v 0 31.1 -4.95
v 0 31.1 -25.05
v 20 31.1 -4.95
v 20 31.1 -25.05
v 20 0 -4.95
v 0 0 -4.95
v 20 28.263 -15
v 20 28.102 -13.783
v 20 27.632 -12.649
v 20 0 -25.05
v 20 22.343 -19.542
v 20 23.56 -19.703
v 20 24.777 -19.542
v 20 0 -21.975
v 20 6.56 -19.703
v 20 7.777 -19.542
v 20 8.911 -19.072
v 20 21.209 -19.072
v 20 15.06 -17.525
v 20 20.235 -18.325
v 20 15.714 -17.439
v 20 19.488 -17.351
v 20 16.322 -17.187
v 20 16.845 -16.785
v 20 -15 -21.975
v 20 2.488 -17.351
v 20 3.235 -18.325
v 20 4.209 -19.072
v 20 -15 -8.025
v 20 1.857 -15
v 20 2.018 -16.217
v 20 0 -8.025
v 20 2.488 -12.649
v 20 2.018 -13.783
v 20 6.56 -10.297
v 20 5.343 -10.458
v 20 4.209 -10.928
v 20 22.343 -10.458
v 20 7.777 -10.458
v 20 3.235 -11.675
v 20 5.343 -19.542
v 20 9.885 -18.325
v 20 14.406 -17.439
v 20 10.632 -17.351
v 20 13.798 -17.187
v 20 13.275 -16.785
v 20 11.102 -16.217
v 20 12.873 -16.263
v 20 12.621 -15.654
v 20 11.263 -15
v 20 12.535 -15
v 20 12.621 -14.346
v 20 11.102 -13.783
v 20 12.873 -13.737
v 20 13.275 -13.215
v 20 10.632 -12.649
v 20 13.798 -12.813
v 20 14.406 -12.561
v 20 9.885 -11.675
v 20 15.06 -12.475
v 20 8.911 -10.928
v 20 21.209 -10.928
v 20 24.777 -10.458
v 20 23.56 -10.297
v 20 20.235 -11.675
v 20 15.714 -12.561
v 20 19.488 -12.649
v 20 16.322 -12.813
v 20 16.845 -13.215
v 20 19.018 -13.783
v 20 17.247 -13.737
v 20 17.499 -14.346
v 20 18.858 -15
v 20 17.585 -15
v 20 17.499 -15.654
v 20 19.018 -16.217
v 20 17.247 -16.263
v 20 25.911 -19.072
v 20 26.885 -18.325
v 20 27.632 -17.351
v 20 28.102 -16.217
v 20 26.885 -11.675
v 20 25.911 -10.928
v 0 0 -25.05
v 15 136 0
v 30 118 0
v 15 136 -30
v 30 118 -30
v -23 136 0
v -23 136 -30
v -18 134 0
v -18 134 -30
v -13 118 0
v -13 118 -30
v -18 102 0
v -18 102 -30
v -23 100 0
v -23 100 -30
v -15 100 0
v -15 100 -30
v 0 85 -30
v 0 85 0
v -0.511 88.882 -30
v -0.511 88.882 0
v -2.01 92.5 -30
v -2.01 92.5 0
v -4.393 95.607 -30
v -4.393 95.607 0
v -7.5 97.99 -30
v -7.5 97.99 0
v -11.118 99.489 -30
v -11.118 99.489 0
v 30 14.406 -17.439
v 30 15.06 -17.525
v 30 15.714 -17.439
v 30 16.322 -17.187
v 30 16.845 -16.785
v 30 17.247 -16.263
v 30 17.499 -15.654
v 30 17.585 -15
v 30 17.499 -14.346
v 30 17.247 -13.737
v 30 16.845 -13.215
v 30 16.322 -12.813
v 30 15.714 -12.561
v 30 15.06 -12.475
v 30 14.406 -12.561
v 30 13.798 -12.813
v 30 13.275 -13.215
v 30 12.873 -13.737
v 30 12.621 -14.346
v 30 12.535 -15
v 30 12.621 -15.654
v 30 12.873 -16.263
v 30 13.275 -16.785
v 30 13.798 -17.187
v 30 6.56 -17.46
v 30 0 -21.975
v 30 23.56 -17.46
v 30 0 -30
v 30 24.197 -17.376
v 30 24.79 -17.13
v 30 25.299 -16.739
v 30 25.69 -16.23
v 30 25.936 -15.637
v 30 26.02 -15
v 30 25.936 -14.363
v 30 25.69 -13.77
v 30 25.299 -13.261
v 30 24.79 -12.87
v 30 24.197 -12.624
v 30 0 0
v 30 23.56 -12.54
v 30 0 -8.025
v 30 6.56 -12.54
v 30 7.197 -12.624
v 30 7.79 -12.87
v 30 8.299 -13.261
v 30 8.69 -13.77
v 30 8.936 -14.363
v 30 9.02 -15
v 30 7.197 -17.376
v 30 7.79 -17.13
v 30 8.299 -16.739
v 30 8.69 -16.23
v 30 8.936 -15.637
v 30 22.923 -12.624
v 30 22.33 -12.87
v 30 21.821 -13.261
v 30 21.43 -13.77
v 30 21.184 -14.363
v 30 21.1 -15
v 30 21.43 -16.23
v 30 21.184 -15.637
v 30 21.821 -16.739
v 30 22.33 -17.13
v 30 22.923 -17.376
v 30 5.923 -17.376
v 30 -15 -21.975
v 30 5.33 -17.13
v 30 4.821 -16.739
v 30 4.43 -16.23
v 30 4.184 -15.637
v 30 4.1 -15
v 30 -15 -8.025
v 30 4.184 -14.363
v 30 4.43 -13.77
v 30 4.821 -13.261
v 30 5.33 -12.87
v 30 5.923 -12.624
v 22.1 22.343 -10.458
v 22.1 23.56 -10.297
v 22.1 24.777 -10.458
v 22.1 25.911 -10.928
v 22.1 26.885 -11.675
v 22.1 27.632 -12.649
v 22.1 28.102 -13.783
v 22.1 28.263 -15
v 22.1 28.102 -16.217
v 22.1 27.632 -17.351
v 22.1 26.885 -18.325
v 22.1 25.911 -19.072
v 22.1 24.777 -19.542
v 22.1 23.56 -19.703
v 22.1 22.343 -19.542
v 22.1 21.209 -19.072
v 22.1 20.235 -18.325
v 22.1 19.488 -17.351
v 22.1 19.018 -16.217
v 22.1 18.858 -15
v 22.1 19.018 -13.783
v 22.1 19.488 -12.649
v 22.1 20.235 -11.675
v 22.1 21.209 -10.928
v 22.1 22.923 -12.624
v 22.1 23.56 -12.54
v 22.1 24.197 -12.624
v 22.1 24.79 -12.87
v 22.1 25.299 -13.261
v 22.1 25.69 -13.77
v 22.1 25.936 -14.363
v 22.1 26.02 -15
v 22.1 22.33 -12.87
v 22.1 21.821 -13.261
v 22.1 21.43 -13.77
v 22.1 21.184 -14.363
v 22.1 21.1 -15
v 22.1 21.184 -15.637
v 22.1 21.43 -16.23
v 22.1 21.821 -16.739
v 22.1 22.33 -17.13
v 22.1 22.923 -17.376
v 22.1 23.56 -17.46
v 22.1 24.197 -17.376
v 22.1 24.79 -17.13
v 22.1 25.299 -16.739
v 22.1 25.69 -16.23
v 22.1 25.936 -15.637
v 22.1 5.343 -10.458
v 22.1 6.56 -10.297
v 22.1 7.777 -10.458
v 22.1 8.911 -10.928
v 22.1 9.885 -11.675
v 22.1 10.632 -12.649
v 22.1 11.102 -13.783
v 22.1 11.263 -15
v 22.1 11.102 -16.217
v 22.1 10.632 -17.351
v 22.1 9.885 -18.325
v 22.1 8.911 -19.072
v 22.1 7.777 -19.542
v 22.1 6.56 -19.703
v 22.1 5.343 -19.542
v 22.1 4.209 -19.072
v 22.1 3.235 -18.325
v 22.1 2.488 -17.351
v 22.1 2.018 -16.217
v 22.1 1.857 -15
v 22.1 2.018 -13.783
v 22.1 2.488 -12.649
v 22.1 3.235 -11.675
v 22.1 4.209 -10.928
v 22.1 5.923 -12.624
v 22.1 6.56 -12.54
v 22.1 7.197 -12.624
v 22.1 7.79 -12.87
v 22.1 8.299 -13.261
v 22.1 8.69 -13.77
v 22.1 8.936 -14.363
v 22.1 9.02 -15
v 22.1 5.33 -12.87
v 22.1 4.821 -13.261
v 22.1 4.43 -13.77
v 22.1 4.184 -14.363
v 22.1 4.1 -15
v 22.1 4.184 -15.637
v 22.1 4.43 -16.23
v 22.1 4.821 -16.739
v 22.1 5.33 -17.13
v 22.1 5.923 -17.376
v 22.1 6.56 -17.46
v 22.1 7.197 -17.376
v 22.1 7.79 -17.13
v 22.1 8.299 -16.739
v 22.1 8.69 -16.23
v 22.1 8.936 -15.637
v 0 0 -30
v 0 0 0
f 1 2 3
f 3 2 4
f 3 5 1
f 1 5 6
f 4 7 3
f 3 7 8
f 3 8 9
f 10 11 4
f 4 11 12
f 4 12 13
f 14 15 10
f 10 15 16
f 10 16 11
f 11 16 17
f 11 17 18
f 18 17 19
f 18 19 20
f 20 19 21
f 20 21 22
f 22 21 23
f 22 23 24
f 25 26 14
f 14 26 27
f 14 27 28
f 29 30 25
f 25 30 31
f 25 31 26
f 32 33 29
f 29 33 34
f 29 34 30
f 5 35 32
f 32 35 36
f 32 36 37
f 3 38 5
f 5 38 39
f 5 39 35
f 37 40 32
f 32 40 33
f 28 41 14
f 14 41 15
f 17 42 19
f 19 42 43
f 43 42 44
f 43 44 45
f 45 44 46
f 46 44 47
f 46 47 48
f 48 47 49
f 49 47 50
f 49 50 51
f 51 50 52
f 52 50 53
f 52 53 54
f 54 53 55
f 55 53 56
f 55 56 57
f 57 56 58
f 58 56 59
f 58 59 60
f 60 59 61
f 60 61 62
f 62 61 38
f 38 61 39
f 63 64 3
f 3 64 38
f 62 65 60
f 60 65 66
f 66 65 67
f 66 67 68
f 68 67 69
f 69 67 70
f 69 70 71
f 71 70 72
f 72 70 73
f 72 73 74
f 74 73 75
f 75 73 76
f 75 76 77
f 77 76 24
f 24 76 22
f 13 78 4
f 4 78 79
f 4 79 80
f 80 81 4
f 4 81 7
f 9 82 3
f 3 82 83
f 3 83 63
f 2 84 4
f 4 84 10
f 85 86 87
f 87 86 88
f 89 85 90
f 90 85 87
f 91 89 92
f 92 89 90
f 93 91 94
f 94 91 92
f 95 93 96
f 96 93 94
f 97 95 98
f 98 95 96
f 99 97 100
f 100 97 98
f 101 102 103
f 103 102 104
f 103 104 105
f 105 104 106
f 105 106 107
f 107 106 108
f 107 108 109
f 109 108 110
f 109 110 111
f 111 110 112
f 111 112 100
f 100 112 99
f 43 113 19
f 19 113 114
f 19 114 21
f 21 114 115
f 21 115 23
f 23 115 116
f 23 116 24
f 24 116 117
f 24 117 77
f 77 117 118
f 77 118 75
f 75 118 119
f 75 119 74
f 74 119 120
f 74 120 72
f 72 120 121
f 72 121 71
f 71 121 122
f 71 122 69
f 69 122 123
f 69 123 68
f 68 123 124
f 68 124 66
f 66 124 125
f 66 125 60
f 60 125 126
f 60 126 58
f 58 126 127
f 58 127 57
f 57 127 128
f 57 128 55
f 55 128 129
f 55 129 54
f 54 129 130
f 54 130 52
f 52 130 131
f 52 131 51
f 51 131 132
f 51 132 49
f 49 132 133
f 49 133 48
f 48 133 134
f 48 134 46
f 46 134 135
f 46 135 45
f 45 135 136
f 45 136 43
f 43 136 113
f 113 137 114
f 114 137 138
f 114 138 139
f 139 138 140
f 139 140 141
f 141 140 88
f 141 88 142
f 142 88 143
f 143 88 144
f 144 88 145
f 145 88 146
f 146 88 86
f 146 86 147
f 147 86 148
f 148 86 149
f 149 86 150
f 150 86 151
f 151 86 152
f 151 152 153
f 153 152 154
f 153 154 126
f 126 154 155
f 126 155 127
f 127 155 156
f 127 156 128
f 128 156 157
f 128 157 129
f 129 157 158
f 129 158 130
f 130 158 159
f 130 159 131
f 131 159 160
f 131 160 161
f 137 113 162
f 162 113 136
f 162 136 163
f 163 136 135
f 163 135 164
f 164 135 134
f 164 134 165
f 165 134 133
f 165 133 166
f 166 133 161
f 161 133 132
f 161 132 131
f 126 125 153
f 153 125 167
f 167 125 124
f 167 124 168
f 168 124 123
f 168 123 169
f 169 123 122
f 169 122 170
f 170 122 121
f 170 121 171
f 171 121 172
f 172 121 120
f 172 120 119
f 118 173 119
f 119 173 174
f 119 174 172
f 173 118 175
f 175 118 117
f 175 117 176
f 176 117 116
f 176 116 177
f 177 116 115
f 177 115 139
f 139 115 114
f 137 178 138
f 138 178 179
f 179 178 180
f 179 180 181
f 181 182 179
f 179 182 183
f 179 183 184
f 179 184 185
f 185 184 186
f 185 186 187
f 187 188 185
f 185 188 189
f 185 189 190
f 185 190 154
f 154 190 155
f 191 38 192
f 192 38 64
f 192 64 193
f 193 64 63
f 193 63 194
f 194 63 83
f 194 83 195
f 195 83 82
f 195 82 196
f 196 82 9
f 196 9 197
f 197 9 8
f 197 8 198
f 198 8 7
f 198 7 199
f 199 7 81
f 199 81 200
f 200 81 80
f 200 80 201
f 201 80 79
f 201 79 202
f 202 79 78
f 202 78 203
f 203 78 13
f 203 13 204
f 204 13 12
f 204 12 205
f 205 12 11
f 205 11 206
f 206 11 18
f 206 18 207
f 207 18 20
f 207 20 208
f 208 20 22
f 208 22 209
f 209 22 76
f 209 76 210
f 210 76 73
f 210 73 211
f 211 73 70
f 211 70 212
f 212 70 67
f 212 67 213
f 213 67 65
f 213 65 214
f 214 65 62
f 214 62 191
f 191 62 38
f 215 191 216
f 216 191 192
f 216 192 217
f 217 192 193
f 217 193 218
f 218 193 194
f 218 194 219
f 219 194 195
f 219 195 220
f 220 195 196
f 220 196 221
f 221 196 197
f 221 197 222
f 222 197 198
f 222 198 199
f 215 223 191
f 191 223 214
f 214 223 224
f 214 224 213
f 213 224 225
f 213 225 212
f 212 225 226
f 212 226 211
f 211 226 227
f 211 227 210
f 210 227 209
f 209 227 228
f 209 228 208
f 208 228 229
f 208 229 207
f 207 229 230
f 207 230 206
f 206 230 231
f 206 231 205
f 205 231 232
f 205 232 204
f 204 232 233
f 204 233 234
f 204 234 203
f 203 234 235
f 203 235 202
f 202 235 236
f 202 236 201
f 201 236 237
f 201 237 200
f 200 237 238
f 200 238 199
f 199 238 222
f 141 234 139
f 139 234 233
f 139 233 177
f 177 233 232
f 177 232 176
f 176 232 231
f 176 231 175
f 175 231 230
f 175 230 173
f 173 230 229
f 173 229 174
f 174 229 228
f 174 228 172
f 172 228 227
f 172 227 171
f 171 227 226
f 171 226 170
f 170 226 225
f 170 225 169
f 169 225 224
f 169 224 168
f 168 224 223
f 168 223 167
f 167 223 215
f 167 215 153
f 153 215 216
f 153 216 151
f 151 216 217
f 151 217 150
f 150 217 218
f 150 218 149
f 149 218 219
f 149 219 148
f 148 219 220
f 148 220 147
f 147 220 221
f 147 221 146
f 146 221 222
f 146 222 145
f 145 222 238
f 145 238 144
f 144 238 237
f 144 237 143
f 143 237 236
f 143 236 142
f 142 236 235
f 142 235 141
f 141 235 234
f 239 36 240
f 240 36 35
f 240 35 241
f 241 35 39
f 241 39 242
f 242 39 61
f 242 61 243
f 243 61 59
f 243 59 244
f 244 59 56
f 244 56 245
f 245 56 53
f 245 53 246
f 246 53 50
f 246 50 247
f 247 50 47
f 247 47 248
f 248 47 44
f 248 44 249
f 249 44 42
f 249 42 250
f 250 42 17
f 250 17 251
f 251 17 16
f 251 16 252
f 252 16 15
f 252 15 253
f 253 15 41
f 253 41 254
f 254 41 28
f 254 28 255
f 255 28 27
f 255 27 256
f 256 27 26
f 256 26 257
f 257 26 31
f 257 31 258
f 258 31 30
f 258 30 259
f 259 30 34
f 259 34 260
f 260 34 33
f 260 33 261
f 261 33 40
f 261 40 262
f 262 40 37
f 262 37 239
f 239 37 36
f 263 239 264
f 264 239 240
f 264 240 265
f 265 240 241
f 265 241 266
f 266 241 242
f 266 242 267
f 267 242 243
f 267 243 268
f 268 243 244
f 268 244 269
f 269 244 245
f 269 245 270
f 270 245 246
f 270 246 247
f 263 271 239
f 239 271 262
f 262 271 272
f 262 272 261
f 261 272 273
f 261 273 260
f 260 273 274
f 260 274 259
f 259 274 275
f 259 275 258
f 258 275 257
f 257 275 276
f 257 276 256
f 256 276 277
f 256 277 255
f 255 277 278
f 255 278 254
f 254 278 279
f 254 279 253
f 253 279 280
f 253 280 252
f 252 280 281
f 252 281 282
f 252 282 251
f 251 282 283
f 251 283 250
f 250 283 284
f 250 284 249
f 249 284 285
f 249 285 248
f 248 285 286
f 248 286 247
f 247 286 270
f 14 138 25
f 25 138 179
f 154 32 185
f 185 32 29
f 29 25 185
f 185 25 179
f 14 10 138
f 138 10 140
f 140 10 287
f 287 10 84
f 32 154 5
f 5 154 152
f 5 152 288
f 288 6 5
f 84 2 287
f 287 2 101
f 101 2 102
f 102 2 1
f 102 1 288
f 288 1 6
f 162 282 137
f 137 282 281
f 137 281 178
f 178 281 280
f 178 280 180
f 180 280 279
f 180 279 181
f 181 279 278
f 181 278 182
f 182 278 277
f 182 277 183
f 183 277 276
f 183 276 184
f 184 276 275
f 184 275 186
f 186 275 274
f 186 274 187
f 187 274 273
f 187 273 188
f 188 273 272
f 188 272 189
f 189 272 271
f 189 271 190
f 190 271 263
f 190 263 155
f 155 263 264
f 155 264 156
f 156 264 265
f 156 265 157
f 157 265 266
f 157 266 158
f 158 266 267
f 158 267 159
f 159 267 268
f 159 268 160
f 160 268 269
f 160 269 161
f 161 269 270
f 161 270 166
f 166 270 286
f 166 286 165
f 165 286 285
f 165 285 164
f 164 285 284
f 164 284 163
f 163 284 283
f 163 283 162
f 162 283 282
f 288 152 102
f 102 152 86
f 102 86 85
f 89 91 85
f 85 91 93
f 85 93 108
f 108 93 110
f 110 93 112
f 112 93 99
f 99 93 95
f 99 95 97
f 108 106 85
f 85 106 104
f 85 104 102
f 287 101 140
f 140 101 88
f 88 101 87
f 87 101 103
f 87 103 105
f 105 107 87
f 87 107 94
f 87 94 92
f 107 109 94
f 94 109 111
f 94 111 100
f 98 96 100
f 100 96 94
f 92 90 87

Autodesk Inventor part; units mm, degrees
ref_plane "YZ Plane" through (0, 0, 0) normal (1, 0, 0) x (0, 1, 0)
ref_plane "XZ Plane" through (0, 0, 0) normal (0, 1, 0) x (-1, 0, 0)
ref_plane "XY Plane" through (0, 0, 0) normal (0, 0, 1) x (1, 0, 0)
sketch "Sketch1" plane through (0, 0, 0) normal (0, 0, 1) x (1, 0, 0)
  line L0 (0, 0) -> (25, 0)
  line L1 (25, 0) -> (25, 40)
  line L2 (25, 40) -> (0, 40)
  line L3 (0, 40) -> (0, 0)
  dimension "d1" = 25
  dimension "d2" = 40
  dimension "d3" = 25
extrude "Extrusion1" add sketch "Sketch1" against normal blind 30
sketch "Sketch2" plane through (25, 0, 0) normal (1, 0, 0) x (0, 0, -1)
  line L0 (0, 0) -> (30, 0) projected
  circle A0 centre (15, 6.56) radius 2.46
extrude "Extrusion2" cut sketch "Sketch2" against normal blind 30
sketch "Sketch3" plane through (0, 0, 0) normal (-1, 0, 0) x (0, 0, 1)
  line L0 (0, 0) -> (-30, 0) projected
  line L1 (-25.05, 0) -> (-4.95, 0)
  line L2 (-4.95, 0) -> (-4.95, 33.12)
  line L3 (-4.95, 33.12) -> (-25.05, 33.12)
  line L4 (-25.05, 33.12) -> (-25.05, 0)
  dimension "d11" = 20.1
extrude "Extrusion3" cut sketch "Sketch3" against normal blind 20
sketch "Sketch4" plane through (0, 0, 0) normal (0, -1, 0) x (1, 0, 0)
  line L0 (20, -4.95) -> (20, -25.05) projected
  line L1 (20, -15) -> (25, -15)
  line L2 (25, 0) -> (25, -30) projected
  line L3 (20, -8.025) -> (25, -8.025)
  line L4 (25, -8.025) -> (25, -21.975)
  line L5 (25, -21.975) -> (20, -21.975)
  line L6 (20, -21.975) -> (20, -8.025)
  line L7 (20, -8.025) -> (25, -21.975) construction
  line L8 (25, -8.025) -> (20, -21.975) construction
  line L9 (25, -12.54) -> (25, -17.46) projected
  point P0 (0, 0)
  point P1 (22.5, -15)
  dimension "d14" = 13.95
extrude "Extrusion4" add sketch "Sketch4" along normal blind 15
sketch "Sketch5" plane through (20, 0, 0) normal (-1, 0, 0) x (0, 0, 1)
  circle A0 centre (-15, 6.56) radius 2.46 projected
  circle A1 centre (-15, 6.56) radius 4.7025
  circle A2 centre (-15, 6.56) radius 2.46 projected
  circle A3 centre (-15, 6.56) radius 2.46
  point P0 (0, 0)
  dimension "d17" = 9.405
extrude "Extrusion5" cut sketch "Sketch5" against normal blind 2.1
sketch "Sketch6" plane through (25, 0, 0) normal (1, 0, 0) x (0, 0, -1)
  circle A0 centre (15, 6.56) radius 4.7025 projected
  line L0 (15, 6.56) -> (15, 23.56)
  circle A1 centre (15, 23.56) radius 2.46
  point P0 (0, 0)
  dimension "d20" = 17
  dimension "d21" = 4.92
extrude "Extrusion6" cut sketch "Sketch6" against normal blind 10 contours A1
sketch "Sketch7" plane through (20, 0, 0) normal (-1, 0, 0) x (0, 0, 1)
  circle A0 centre (-15, 23.56) radius 2.46 projected
  circle A1 centre (-15, 23.56) radius 4.7025
  point P0 (0, 0)
  dimension "d24" = 9.405
extrude "Extrusion7" cut sketch "Sketch7" against normal blind 2.1
sketch "Sketch9" plane through (25, 0, 0) normal (1, 0, 0) x (0, 0, -1)
  circle A0 centre (15, 6.56) radius 2.46 projected
  circle A1 centre (15, 6.56) radius 2.46
  circle A2 centre (15, 23.56) radius 2.46 projected
  circle A3 centre (15, 23.56) radius 2.46
  line L0 (30, 40) -> (30, 0) projected
  line L1 (30, 0) -> (30, 40)
  line L2 (30, 40) -> (0, 40)
  line L3 (0, 40) -> (0, 0)
  line L4 (0, 0) -> (8.025, 0) projected
  line L5 (21.975, 0) -> (21.975, -15)
  line L6 (21.975, -15) -> (8.025, -15)
  line L7 (8.025, -15) -> (8.025, 0)
  line L8 (0, 0) -> (8.025, 0)
  line L9 (21.975, 0) -> (30, 0)
extrude "Extrusion8" add sketch "Sketch9" along normal blind 5
sketch "Sketch10" plane through (0, 40, 0) normal (0, 1, 0) x (1, 0, 0)
  line L0 (0, 30) -> (30, 30) projected
  line L1 (30, 0) -> (0, 0) projected
  line L2 (0, 30) -> (30, 30)
  line L3 (30, 30) -> (30, 0)
  line L4 (30, 0) -> (0, 0)
  line L5 (0, 0) -> (0, 30)
extrude "Extrusion9" add sketch "Sketch10" along normal blind 30
sketch "Sketch12" plane through (30, 0, 0) normal (1, 0, 0) x (0, 0, -1)
  circle A0 centre (15, 6.56) radius 2.46 projected
  line L0 (15, 6.56) -> (15, 15.06)
  circle A1 centre (15, 15.06) radius 2.525
  point P0 (0, 0)
  dimension "d31" = 8.5
  dimension "d33" = 5.05
extrude "Extrusion10" cut sketch "Sketch12" against normal blind 30 contours A1
sketch "Sketch14" plane through (0, 0, 0) normal (0, 0, 1) x (1, 0, 0)
  line L0 (30, 70) -> (0, 70) projected
  line L1 (0, 70) -> (0, 85)
  line L2 (-15, 100) -> (-23, 100)
  line L3 (30, 0) -> (30, 70) projected
  line L4 (30, 118) -> (30, 70)
  arc A0 (0, 85) -> (-15, 100) centre (-15, 85) ccw
  line L5 (30, 105) -> (30, 100)
  line L6 (-18, 134) -> (-23, 136)
  line L7 (-18, 102) -> (-23, 100)
  line L8 (-18, 102) -> (-13, 118)
  line L9 (-13, 118) -> (-18, 134)
  line L10 (15, 136) -> (30, 118)
  line L11 (-23, 136) -> (15, 136)
  point P0 (0, 0)
  point P1 (0, 100)
  dimension "d47" = 30
  dimension "d54" = 15
extrude "Extrusion12" add sketch "Sketch14" against normal blind 30
sketch "Sketch15" plane through (0, 0, -25.05) normal (-1, 0, 0) x (0, 0, 1)
  line L0 (0, 33.12) -> (20.1, 33.12) projected
  line L1 (20.1, 33.12) -> (20.1, 0) projected
  line L2 (0, 33.12) -> (20.1, 33.12)
  line L3 (20.1, 33.12) -> (20.1, 31.1)
  line L4 (20.1, 31.1) -> (0, 31.1)
  line L5 (0, 31.1) -> (0, 33.12)
  point P0 (25.05, 0)
  dimension "d57" = 2.02
extrude "Extrusion13" add sketch "Sketch15" against normal blind 20
properties part number "rec_a_32mm_x_30mm"
